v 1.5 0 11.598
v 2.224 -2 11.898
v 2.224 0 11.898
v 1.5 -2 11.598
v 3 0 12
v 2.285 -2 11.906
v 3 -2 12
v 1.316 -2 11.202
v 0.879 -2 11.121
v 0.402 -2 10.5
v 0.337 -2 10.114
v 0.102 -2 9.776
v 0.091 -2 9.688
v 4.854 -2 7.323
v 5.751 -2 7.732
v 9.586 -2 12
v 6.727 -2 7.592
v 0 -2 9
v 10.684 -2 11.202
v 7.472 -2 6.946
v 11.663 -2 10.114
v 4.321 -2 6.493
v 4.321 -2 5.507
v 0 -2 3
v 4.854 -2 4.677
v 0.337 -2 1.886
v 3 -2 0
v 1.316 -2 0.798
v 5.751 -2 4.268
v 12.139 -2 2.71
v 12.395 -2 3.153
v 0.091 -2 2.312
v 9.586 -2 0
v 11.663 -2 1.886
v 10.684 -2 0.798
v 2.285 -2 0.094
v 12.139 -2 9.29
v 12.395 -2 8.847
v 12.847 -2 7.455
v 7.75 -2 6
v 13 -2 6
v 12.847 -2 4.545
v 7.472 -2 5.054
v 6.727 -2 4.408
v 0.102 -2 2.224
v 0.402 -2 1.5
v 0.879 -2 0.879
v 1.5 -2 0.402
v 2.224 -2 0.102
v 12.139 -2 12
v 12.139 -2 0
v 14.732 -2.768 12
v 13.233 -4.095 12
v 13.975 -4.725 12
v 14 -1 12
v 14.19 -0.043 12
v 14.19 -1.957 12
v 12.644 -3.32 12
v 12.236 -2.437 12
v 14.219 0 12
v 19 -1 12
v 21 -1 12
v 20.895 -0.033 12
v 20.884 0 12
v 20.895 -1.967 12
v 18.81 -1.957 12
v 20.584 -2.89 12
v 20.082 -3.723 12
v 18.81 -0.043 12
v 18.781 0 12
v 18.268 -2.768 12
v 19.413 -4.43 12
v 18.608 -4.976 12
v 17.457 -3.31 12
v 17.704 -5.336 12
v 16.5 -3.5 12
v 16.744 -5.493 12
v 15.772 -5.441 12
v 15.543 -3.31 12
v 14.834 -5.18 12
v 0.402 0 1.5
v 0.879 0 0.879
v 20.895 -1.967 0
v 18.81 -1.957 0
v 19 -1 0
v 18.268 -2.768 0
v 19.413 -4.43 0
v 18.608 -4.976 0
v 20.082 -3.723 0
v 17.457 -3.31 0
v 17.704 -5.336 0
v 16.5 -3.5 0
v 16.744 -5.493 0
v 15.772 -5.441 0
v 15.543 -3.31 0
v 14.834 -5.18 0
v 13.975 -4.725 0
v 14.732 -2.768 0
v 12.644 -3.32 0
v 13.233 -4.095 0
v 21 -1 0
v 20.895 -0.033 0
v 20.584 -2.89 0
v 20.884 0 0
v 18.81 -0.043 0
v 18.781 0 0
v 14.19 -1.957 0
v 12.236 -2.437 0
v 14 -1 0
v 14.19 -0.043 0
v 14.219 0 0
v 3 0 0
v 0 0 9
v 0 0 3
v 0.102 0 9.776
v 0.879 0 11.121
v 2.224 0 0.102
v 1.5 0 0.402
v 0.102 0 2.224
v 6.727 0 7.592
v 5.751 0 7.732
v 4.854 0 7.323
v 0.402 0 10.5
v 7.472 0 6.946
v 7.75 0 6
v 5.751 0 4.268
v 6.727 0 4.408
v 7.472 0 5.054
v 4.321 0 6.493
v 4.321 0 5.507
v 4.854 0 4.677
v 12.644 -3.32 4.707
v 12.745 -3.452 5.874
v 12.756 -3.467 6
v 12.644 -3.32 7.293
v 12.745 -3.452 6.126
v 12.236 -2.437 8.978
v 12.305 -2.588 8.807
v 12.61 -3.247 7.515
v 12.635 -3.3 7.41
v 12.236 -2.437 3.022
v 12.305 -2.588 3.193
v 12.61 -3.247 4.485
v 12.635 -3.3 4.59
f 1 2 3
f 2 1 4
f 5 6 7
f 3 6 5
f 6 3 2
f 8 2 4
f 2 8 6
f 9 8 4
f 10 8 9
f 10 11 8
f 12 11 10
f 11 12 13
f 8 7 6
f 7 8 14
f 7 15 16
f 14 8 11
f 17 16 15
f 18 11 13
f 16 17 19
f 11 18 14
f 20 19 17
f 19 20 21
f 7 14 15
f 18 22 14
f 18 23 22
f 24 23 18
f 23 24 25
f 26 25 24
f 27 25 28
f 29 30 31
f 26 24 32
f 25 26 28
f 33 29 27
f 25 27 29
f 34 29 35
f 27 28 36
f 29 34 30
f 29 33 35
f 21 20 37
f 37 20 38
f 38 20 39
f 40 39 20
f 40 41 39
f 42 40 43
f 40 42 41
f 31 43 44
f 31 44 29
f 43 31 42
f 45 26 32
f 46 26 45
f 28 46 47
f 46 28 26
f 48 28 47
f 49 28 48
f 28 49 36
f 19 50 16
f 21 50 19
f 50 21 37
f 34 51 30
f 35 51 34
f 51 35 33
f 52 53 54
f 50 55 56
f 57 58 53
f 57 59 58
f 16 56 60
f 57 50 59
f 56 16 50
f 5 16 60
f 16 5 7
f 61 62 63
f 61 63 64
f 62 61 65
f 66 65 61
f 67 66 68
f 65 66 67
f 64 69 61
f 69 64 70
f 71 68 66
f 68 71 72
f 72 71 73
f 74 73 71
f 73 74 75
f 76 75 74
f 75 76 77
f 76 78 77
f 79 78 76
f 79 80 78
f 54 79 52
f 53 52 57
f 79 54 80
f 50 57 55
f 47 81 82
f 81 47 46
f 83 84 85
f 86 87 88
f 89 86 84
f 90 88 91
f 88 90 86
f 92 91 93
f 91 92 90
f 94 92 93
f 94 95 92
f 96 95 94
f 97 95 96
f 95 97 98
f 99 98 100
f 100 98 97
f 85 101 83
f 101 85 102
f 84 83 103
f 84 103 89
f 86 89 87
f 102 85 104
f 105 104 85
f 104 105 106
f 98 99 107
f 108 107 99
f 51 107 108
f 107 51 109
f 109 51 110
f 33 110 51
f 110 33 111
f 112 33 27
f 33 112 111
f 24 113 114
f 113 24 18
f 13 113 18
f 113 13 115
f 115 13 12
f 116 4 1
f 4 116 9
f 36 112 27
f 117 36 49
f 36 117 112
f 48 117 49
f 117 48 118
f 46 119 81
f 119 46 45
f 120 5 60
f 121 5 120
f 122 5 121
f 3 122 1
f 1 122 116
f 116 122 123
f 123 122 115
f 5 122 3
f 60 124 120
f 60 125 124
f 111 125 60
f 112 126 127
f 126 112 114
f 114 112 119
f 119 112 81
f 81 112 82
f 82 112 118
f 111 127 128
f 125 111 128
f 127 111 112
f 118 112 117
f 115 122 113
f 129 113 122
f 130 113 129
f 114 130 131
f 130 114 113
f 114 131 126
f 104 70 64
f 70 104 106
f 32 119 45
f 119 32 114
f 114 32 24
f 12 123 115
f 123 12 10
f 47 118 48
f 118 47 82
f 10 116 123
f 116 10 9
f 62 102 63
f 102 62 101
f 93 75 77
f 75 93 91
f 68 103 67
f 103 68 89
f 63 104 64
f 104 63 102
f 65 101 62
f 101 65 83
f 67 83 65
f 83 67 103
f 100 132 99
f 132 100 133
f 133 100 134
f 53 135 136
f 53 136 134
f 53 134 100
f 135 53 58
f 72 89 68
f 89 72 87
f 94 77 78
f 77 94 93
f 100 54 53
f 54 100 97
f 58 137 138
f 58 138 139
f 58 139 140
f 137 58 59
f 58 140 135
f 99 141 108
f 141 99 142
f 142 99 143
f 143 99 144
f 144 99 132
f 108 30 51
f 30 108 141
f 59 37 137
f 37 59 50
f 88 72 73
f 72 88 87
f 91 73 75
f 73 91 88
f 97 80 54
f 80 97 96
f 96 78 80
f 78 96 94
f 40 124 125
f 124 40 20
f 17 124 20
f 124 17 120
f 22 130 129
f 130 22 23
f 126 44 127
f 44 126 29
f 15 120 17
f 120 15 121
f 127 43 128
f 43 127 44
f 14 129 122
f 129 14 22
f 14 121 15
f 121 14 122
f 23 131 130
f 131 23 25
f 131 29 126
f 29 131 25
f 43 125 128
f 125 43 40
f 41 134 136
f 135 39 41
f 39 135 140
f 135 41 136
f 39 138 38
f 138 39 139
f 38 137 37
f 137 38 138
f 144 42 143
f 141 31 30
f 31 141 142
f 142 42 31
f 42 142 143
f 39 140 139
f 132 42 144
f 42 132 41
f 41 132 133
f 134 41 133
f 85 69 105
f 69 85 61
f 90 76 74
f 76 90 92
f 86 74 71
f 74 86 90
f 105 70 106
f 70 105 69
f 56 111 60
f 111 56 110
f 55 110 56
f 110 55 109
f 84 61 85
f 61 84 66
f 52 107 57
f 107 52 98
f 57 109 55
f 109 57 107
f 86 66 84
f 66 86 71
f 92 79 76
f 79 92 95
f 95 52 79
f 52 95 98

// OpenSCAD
// file: lib/parameters.scad
// Parameters shared between modules
Base_th = 2;
Beam_width = 15;
Wiggle = 0.25;
Fat_beam_width = Beam_width + Wiggle;
Beam_length = 400;
Wall_th = 2.5;
Min_beam_width = 12.5;
Max_beam_width = 17.5;
Zip_th = 2;
Zip_h = Zip_th + Max_beam_width - Min_beam_width;
Zip_w = 5.0;
Nema17_cube_width          = 42.43;
Nema17_screw_hole_width    = 43.74; // Opposite corner screws
Nema17_ring_diameter       = 22;
Nema17_cube_height         = 39.36;
Nema17_shaft_height        = 63.65;
Nema17_ring_height         = 2;
Nema17_shaft_radius        = 5/2;
b608_outer_dia = 22.2;
b608_width = 7.05;
b608_bore_r = 4;
Gap_between_sandwich_and_plate = 1.5 + Base_th; // 1.5 mm for wiggle
Motor_bracket_flerp_r = 6;
Motor_bracket_flerp = 14;
Motor_bracket_cw = Nema17_cube_width + 6;
Motor_bracket_att_ang = 50;
Mounting_screw_d = 3.5;
Mounting_screw_head_d = 14;
Spool_outer_wall_th = 4;

// Corner clamp parameters
Cc_l1 = (Fat_beam_width+2*Wall_th)*2*sqrt(3);
Cc_rad_b = 4;
Cc_action_point_from_mid = Cc_l1/sqrt(3)-2*Cc_rad_b-7;  // 5 chosen arbitrarily
Cc_plastic_length = sqrt(Cc_action_point_from_mid*Cc_action_point_from_mid
                       - (Cc_action_point_from_mid/2)*(Cc_action_point_from_mid/2));

// The distance between the two action points on the mover
Sidelength = Beam_length + 2*Cc_plastic_length;

/////// Gear parameters ////////////
Circular_pitch = 262;
Motor_teeth = 10;
Gear_height = 21.4-3;
Motor_pitch                      = (Motor_teeth*Circular_pitch/360);
Motor_pitch_diametrial           = Motor_teeth/(2*Motor_pitch);
Motor_outer_radius               = Motor_pitch + 1/Motor_pitch_diametrial;
Spool_teeth = 100;
Spool_r = 75;
Spool_height = 8;
Spool_pitch                      = (Spool_teeth*Circular_pitch/360);
Spool_pitch_diametrial           = Spool_teeth/(2*Spool_pitch);
Spool_outer_radius               = Spool_pitch + 1/Spool_pitch_diametrial;
Sep_disc_radius = 161.83/2; // Made to match 255 teeth gt2 pulley
Motor_bracket_depth = Gear_height+1+7+Nema17_ring_height+1+Gap_between_sandwich_and_plate;
Spool_core_flerp0 = 16+3;

/////// Lineroller parameters ////////////
b623_width  = 4;
b623_bore_r = 3/2;
b623_vgroove_big_r = 12/2;
b623_vgroove_small_r = 10/2;
b623_outer_dia = 10;

Depth_of_roller_base = 18;
Roller_flerp = 6;
Roller_l = 42;
Roller_fl = (Roller_l - Depth_of_roller_base)/2;

Line_roller_wall_th = 5;

Line_roller_ABC_winch_h =  Gap_between_sandwich_and_plate
                           + Sep_disc_radius
                           - Spool_r
                           + Depth_of_roller_base/2
                           + b623_vgroove_small_r;


Ptfe_r = 2.1;
Roller_base_r = 8;
Screw_h = 2;
Screw_head_h = 2;
M3_screw_head_d = 5.8;
Spool_center_bearing_wall_th = 5;
Corner_clamp_bearings_center_to_center = 15;
Anchor_bearings_center_to_center = Corner_clamp_bearings_center_to_center + b623_outer_dia;

//// Lineroller anchor parameters /////

Back_bearing_x = b623_vgroove_big_r + 1.5;
Front_bearing_x = -b623_vgroove_big_r - 5;
Move_tower = -12.2;
Lower_bearing_z = 13;
Higher_bearing_z = Lower_bearing_z + Corner_clamp_bearings_center_to_center;

//// Cable Clamp parameters /////
Bit_width = 12;
Cable_r=2.5;


//// Donkey and encoder parameters /////

Donkey_shaft_d = 6;
Donkey_h = 65.12;
Donkey_body_d = 50;
Donkey_feet_th = 3.5;

Encoder_LDP3806_shaft_d = 6;
Encoder_LDP3806_d = 38;

// Belt drive parameters
GT2_belt_width = 6.5;
GT2_gear_height = GT2_belt_width + 2;
GT2_motor_gear_height = 16;
GT2_motor_gear_outer_dia = 16;
GT2_spool_gear_teeth = 255;
GT2_motor_gear_teeth = 20;
Torx_depth = GT2_gear_height/2;
Belt_roller_h = 56;
Belt_thickness = 1.4;

Belt_roller_space_between_walls = 2*b623_width + 0.8;
Belt_roller_wall_th = (Depth_of_roller_base - Belt_roller_space_between_walls)/2+2;
Belt_roller_top_adj_screw_x = Depth_of_roller_base/2-3.7;
Belt_roller_top_adj_screw_y = Belt_roller_space_between_walls/2+2;
Belt_roller_containing_cube_ywidth = Belt_roller_space_between_walls+8.5;
Belt_roller_insert_h = 18;



// Spacer parameters
Sandwich_ABC_width = 2*(1+Spool_height) + GT2_gear_height;
Sandwich_D_width = 3*(1+Spool_height) + GT2_gear_height;

Spacer_ABC_width = Sandwich_ABC_width - 2*b608_width;
Spacer_D_width = Sandwich_D_width -2*b608_width;


spd = Spool_height+GT2_gear_height;
// Horizontal_deflector_cube_y_size must be exact this number
// because we want to deflect AB-lines
// 60 degrees on the ceiling unit, and we want to put two
// deflectors in a row and get a distance between bearings
// that maintain the distance d when deflecting 60 degrees
Horizontal_deflector_cube_y_size = (2/sqrt(3))*spd;


// Top plate parameters needed for layout slicer
Yshift_top_plate = -297.8;
// main file
include <lib/parameters.scad>
use <lib/util.scad>

difference(){
  union(){
    rotate([90,0,0])
      left_rounded_cube2([Bit_width+2,Bit_width,Base_th], 3, $fn=2*12);
    translate([Bit_width+Cable_r+Base_th,-Base_th/2,0])
      cylinder(r=Cable_r+Base_th, h=Bit_width, $fs=1);
  }
  translate([0,0,-1])
    cube(Bit_width+2*Cable_r+2*Base_th);

  // screw...
  translate([Bit_width/2, 0, Bit_width/2])
    rotate([90,0,0])
    translate([0,0,-1])
    cylinder(d=Mounting_screw_d, h=Base_th+2, $fs=1);
  translate([Bit_width/2, 0, Bit_width/2])
    rotate([90,0,0])
    translate([0,0,Base_th])
    cylinder(d2=Mounting_screw_head_d-4, d1=Mounting_screw_head_d, h=12, $fs=1);
  // cable...
    translate([Bit_width+Cable_r+Base_th,-Base_th/2,-1])
      cylinder(r=Cable_r, h=Bit_width+2, $fs=1);
}
